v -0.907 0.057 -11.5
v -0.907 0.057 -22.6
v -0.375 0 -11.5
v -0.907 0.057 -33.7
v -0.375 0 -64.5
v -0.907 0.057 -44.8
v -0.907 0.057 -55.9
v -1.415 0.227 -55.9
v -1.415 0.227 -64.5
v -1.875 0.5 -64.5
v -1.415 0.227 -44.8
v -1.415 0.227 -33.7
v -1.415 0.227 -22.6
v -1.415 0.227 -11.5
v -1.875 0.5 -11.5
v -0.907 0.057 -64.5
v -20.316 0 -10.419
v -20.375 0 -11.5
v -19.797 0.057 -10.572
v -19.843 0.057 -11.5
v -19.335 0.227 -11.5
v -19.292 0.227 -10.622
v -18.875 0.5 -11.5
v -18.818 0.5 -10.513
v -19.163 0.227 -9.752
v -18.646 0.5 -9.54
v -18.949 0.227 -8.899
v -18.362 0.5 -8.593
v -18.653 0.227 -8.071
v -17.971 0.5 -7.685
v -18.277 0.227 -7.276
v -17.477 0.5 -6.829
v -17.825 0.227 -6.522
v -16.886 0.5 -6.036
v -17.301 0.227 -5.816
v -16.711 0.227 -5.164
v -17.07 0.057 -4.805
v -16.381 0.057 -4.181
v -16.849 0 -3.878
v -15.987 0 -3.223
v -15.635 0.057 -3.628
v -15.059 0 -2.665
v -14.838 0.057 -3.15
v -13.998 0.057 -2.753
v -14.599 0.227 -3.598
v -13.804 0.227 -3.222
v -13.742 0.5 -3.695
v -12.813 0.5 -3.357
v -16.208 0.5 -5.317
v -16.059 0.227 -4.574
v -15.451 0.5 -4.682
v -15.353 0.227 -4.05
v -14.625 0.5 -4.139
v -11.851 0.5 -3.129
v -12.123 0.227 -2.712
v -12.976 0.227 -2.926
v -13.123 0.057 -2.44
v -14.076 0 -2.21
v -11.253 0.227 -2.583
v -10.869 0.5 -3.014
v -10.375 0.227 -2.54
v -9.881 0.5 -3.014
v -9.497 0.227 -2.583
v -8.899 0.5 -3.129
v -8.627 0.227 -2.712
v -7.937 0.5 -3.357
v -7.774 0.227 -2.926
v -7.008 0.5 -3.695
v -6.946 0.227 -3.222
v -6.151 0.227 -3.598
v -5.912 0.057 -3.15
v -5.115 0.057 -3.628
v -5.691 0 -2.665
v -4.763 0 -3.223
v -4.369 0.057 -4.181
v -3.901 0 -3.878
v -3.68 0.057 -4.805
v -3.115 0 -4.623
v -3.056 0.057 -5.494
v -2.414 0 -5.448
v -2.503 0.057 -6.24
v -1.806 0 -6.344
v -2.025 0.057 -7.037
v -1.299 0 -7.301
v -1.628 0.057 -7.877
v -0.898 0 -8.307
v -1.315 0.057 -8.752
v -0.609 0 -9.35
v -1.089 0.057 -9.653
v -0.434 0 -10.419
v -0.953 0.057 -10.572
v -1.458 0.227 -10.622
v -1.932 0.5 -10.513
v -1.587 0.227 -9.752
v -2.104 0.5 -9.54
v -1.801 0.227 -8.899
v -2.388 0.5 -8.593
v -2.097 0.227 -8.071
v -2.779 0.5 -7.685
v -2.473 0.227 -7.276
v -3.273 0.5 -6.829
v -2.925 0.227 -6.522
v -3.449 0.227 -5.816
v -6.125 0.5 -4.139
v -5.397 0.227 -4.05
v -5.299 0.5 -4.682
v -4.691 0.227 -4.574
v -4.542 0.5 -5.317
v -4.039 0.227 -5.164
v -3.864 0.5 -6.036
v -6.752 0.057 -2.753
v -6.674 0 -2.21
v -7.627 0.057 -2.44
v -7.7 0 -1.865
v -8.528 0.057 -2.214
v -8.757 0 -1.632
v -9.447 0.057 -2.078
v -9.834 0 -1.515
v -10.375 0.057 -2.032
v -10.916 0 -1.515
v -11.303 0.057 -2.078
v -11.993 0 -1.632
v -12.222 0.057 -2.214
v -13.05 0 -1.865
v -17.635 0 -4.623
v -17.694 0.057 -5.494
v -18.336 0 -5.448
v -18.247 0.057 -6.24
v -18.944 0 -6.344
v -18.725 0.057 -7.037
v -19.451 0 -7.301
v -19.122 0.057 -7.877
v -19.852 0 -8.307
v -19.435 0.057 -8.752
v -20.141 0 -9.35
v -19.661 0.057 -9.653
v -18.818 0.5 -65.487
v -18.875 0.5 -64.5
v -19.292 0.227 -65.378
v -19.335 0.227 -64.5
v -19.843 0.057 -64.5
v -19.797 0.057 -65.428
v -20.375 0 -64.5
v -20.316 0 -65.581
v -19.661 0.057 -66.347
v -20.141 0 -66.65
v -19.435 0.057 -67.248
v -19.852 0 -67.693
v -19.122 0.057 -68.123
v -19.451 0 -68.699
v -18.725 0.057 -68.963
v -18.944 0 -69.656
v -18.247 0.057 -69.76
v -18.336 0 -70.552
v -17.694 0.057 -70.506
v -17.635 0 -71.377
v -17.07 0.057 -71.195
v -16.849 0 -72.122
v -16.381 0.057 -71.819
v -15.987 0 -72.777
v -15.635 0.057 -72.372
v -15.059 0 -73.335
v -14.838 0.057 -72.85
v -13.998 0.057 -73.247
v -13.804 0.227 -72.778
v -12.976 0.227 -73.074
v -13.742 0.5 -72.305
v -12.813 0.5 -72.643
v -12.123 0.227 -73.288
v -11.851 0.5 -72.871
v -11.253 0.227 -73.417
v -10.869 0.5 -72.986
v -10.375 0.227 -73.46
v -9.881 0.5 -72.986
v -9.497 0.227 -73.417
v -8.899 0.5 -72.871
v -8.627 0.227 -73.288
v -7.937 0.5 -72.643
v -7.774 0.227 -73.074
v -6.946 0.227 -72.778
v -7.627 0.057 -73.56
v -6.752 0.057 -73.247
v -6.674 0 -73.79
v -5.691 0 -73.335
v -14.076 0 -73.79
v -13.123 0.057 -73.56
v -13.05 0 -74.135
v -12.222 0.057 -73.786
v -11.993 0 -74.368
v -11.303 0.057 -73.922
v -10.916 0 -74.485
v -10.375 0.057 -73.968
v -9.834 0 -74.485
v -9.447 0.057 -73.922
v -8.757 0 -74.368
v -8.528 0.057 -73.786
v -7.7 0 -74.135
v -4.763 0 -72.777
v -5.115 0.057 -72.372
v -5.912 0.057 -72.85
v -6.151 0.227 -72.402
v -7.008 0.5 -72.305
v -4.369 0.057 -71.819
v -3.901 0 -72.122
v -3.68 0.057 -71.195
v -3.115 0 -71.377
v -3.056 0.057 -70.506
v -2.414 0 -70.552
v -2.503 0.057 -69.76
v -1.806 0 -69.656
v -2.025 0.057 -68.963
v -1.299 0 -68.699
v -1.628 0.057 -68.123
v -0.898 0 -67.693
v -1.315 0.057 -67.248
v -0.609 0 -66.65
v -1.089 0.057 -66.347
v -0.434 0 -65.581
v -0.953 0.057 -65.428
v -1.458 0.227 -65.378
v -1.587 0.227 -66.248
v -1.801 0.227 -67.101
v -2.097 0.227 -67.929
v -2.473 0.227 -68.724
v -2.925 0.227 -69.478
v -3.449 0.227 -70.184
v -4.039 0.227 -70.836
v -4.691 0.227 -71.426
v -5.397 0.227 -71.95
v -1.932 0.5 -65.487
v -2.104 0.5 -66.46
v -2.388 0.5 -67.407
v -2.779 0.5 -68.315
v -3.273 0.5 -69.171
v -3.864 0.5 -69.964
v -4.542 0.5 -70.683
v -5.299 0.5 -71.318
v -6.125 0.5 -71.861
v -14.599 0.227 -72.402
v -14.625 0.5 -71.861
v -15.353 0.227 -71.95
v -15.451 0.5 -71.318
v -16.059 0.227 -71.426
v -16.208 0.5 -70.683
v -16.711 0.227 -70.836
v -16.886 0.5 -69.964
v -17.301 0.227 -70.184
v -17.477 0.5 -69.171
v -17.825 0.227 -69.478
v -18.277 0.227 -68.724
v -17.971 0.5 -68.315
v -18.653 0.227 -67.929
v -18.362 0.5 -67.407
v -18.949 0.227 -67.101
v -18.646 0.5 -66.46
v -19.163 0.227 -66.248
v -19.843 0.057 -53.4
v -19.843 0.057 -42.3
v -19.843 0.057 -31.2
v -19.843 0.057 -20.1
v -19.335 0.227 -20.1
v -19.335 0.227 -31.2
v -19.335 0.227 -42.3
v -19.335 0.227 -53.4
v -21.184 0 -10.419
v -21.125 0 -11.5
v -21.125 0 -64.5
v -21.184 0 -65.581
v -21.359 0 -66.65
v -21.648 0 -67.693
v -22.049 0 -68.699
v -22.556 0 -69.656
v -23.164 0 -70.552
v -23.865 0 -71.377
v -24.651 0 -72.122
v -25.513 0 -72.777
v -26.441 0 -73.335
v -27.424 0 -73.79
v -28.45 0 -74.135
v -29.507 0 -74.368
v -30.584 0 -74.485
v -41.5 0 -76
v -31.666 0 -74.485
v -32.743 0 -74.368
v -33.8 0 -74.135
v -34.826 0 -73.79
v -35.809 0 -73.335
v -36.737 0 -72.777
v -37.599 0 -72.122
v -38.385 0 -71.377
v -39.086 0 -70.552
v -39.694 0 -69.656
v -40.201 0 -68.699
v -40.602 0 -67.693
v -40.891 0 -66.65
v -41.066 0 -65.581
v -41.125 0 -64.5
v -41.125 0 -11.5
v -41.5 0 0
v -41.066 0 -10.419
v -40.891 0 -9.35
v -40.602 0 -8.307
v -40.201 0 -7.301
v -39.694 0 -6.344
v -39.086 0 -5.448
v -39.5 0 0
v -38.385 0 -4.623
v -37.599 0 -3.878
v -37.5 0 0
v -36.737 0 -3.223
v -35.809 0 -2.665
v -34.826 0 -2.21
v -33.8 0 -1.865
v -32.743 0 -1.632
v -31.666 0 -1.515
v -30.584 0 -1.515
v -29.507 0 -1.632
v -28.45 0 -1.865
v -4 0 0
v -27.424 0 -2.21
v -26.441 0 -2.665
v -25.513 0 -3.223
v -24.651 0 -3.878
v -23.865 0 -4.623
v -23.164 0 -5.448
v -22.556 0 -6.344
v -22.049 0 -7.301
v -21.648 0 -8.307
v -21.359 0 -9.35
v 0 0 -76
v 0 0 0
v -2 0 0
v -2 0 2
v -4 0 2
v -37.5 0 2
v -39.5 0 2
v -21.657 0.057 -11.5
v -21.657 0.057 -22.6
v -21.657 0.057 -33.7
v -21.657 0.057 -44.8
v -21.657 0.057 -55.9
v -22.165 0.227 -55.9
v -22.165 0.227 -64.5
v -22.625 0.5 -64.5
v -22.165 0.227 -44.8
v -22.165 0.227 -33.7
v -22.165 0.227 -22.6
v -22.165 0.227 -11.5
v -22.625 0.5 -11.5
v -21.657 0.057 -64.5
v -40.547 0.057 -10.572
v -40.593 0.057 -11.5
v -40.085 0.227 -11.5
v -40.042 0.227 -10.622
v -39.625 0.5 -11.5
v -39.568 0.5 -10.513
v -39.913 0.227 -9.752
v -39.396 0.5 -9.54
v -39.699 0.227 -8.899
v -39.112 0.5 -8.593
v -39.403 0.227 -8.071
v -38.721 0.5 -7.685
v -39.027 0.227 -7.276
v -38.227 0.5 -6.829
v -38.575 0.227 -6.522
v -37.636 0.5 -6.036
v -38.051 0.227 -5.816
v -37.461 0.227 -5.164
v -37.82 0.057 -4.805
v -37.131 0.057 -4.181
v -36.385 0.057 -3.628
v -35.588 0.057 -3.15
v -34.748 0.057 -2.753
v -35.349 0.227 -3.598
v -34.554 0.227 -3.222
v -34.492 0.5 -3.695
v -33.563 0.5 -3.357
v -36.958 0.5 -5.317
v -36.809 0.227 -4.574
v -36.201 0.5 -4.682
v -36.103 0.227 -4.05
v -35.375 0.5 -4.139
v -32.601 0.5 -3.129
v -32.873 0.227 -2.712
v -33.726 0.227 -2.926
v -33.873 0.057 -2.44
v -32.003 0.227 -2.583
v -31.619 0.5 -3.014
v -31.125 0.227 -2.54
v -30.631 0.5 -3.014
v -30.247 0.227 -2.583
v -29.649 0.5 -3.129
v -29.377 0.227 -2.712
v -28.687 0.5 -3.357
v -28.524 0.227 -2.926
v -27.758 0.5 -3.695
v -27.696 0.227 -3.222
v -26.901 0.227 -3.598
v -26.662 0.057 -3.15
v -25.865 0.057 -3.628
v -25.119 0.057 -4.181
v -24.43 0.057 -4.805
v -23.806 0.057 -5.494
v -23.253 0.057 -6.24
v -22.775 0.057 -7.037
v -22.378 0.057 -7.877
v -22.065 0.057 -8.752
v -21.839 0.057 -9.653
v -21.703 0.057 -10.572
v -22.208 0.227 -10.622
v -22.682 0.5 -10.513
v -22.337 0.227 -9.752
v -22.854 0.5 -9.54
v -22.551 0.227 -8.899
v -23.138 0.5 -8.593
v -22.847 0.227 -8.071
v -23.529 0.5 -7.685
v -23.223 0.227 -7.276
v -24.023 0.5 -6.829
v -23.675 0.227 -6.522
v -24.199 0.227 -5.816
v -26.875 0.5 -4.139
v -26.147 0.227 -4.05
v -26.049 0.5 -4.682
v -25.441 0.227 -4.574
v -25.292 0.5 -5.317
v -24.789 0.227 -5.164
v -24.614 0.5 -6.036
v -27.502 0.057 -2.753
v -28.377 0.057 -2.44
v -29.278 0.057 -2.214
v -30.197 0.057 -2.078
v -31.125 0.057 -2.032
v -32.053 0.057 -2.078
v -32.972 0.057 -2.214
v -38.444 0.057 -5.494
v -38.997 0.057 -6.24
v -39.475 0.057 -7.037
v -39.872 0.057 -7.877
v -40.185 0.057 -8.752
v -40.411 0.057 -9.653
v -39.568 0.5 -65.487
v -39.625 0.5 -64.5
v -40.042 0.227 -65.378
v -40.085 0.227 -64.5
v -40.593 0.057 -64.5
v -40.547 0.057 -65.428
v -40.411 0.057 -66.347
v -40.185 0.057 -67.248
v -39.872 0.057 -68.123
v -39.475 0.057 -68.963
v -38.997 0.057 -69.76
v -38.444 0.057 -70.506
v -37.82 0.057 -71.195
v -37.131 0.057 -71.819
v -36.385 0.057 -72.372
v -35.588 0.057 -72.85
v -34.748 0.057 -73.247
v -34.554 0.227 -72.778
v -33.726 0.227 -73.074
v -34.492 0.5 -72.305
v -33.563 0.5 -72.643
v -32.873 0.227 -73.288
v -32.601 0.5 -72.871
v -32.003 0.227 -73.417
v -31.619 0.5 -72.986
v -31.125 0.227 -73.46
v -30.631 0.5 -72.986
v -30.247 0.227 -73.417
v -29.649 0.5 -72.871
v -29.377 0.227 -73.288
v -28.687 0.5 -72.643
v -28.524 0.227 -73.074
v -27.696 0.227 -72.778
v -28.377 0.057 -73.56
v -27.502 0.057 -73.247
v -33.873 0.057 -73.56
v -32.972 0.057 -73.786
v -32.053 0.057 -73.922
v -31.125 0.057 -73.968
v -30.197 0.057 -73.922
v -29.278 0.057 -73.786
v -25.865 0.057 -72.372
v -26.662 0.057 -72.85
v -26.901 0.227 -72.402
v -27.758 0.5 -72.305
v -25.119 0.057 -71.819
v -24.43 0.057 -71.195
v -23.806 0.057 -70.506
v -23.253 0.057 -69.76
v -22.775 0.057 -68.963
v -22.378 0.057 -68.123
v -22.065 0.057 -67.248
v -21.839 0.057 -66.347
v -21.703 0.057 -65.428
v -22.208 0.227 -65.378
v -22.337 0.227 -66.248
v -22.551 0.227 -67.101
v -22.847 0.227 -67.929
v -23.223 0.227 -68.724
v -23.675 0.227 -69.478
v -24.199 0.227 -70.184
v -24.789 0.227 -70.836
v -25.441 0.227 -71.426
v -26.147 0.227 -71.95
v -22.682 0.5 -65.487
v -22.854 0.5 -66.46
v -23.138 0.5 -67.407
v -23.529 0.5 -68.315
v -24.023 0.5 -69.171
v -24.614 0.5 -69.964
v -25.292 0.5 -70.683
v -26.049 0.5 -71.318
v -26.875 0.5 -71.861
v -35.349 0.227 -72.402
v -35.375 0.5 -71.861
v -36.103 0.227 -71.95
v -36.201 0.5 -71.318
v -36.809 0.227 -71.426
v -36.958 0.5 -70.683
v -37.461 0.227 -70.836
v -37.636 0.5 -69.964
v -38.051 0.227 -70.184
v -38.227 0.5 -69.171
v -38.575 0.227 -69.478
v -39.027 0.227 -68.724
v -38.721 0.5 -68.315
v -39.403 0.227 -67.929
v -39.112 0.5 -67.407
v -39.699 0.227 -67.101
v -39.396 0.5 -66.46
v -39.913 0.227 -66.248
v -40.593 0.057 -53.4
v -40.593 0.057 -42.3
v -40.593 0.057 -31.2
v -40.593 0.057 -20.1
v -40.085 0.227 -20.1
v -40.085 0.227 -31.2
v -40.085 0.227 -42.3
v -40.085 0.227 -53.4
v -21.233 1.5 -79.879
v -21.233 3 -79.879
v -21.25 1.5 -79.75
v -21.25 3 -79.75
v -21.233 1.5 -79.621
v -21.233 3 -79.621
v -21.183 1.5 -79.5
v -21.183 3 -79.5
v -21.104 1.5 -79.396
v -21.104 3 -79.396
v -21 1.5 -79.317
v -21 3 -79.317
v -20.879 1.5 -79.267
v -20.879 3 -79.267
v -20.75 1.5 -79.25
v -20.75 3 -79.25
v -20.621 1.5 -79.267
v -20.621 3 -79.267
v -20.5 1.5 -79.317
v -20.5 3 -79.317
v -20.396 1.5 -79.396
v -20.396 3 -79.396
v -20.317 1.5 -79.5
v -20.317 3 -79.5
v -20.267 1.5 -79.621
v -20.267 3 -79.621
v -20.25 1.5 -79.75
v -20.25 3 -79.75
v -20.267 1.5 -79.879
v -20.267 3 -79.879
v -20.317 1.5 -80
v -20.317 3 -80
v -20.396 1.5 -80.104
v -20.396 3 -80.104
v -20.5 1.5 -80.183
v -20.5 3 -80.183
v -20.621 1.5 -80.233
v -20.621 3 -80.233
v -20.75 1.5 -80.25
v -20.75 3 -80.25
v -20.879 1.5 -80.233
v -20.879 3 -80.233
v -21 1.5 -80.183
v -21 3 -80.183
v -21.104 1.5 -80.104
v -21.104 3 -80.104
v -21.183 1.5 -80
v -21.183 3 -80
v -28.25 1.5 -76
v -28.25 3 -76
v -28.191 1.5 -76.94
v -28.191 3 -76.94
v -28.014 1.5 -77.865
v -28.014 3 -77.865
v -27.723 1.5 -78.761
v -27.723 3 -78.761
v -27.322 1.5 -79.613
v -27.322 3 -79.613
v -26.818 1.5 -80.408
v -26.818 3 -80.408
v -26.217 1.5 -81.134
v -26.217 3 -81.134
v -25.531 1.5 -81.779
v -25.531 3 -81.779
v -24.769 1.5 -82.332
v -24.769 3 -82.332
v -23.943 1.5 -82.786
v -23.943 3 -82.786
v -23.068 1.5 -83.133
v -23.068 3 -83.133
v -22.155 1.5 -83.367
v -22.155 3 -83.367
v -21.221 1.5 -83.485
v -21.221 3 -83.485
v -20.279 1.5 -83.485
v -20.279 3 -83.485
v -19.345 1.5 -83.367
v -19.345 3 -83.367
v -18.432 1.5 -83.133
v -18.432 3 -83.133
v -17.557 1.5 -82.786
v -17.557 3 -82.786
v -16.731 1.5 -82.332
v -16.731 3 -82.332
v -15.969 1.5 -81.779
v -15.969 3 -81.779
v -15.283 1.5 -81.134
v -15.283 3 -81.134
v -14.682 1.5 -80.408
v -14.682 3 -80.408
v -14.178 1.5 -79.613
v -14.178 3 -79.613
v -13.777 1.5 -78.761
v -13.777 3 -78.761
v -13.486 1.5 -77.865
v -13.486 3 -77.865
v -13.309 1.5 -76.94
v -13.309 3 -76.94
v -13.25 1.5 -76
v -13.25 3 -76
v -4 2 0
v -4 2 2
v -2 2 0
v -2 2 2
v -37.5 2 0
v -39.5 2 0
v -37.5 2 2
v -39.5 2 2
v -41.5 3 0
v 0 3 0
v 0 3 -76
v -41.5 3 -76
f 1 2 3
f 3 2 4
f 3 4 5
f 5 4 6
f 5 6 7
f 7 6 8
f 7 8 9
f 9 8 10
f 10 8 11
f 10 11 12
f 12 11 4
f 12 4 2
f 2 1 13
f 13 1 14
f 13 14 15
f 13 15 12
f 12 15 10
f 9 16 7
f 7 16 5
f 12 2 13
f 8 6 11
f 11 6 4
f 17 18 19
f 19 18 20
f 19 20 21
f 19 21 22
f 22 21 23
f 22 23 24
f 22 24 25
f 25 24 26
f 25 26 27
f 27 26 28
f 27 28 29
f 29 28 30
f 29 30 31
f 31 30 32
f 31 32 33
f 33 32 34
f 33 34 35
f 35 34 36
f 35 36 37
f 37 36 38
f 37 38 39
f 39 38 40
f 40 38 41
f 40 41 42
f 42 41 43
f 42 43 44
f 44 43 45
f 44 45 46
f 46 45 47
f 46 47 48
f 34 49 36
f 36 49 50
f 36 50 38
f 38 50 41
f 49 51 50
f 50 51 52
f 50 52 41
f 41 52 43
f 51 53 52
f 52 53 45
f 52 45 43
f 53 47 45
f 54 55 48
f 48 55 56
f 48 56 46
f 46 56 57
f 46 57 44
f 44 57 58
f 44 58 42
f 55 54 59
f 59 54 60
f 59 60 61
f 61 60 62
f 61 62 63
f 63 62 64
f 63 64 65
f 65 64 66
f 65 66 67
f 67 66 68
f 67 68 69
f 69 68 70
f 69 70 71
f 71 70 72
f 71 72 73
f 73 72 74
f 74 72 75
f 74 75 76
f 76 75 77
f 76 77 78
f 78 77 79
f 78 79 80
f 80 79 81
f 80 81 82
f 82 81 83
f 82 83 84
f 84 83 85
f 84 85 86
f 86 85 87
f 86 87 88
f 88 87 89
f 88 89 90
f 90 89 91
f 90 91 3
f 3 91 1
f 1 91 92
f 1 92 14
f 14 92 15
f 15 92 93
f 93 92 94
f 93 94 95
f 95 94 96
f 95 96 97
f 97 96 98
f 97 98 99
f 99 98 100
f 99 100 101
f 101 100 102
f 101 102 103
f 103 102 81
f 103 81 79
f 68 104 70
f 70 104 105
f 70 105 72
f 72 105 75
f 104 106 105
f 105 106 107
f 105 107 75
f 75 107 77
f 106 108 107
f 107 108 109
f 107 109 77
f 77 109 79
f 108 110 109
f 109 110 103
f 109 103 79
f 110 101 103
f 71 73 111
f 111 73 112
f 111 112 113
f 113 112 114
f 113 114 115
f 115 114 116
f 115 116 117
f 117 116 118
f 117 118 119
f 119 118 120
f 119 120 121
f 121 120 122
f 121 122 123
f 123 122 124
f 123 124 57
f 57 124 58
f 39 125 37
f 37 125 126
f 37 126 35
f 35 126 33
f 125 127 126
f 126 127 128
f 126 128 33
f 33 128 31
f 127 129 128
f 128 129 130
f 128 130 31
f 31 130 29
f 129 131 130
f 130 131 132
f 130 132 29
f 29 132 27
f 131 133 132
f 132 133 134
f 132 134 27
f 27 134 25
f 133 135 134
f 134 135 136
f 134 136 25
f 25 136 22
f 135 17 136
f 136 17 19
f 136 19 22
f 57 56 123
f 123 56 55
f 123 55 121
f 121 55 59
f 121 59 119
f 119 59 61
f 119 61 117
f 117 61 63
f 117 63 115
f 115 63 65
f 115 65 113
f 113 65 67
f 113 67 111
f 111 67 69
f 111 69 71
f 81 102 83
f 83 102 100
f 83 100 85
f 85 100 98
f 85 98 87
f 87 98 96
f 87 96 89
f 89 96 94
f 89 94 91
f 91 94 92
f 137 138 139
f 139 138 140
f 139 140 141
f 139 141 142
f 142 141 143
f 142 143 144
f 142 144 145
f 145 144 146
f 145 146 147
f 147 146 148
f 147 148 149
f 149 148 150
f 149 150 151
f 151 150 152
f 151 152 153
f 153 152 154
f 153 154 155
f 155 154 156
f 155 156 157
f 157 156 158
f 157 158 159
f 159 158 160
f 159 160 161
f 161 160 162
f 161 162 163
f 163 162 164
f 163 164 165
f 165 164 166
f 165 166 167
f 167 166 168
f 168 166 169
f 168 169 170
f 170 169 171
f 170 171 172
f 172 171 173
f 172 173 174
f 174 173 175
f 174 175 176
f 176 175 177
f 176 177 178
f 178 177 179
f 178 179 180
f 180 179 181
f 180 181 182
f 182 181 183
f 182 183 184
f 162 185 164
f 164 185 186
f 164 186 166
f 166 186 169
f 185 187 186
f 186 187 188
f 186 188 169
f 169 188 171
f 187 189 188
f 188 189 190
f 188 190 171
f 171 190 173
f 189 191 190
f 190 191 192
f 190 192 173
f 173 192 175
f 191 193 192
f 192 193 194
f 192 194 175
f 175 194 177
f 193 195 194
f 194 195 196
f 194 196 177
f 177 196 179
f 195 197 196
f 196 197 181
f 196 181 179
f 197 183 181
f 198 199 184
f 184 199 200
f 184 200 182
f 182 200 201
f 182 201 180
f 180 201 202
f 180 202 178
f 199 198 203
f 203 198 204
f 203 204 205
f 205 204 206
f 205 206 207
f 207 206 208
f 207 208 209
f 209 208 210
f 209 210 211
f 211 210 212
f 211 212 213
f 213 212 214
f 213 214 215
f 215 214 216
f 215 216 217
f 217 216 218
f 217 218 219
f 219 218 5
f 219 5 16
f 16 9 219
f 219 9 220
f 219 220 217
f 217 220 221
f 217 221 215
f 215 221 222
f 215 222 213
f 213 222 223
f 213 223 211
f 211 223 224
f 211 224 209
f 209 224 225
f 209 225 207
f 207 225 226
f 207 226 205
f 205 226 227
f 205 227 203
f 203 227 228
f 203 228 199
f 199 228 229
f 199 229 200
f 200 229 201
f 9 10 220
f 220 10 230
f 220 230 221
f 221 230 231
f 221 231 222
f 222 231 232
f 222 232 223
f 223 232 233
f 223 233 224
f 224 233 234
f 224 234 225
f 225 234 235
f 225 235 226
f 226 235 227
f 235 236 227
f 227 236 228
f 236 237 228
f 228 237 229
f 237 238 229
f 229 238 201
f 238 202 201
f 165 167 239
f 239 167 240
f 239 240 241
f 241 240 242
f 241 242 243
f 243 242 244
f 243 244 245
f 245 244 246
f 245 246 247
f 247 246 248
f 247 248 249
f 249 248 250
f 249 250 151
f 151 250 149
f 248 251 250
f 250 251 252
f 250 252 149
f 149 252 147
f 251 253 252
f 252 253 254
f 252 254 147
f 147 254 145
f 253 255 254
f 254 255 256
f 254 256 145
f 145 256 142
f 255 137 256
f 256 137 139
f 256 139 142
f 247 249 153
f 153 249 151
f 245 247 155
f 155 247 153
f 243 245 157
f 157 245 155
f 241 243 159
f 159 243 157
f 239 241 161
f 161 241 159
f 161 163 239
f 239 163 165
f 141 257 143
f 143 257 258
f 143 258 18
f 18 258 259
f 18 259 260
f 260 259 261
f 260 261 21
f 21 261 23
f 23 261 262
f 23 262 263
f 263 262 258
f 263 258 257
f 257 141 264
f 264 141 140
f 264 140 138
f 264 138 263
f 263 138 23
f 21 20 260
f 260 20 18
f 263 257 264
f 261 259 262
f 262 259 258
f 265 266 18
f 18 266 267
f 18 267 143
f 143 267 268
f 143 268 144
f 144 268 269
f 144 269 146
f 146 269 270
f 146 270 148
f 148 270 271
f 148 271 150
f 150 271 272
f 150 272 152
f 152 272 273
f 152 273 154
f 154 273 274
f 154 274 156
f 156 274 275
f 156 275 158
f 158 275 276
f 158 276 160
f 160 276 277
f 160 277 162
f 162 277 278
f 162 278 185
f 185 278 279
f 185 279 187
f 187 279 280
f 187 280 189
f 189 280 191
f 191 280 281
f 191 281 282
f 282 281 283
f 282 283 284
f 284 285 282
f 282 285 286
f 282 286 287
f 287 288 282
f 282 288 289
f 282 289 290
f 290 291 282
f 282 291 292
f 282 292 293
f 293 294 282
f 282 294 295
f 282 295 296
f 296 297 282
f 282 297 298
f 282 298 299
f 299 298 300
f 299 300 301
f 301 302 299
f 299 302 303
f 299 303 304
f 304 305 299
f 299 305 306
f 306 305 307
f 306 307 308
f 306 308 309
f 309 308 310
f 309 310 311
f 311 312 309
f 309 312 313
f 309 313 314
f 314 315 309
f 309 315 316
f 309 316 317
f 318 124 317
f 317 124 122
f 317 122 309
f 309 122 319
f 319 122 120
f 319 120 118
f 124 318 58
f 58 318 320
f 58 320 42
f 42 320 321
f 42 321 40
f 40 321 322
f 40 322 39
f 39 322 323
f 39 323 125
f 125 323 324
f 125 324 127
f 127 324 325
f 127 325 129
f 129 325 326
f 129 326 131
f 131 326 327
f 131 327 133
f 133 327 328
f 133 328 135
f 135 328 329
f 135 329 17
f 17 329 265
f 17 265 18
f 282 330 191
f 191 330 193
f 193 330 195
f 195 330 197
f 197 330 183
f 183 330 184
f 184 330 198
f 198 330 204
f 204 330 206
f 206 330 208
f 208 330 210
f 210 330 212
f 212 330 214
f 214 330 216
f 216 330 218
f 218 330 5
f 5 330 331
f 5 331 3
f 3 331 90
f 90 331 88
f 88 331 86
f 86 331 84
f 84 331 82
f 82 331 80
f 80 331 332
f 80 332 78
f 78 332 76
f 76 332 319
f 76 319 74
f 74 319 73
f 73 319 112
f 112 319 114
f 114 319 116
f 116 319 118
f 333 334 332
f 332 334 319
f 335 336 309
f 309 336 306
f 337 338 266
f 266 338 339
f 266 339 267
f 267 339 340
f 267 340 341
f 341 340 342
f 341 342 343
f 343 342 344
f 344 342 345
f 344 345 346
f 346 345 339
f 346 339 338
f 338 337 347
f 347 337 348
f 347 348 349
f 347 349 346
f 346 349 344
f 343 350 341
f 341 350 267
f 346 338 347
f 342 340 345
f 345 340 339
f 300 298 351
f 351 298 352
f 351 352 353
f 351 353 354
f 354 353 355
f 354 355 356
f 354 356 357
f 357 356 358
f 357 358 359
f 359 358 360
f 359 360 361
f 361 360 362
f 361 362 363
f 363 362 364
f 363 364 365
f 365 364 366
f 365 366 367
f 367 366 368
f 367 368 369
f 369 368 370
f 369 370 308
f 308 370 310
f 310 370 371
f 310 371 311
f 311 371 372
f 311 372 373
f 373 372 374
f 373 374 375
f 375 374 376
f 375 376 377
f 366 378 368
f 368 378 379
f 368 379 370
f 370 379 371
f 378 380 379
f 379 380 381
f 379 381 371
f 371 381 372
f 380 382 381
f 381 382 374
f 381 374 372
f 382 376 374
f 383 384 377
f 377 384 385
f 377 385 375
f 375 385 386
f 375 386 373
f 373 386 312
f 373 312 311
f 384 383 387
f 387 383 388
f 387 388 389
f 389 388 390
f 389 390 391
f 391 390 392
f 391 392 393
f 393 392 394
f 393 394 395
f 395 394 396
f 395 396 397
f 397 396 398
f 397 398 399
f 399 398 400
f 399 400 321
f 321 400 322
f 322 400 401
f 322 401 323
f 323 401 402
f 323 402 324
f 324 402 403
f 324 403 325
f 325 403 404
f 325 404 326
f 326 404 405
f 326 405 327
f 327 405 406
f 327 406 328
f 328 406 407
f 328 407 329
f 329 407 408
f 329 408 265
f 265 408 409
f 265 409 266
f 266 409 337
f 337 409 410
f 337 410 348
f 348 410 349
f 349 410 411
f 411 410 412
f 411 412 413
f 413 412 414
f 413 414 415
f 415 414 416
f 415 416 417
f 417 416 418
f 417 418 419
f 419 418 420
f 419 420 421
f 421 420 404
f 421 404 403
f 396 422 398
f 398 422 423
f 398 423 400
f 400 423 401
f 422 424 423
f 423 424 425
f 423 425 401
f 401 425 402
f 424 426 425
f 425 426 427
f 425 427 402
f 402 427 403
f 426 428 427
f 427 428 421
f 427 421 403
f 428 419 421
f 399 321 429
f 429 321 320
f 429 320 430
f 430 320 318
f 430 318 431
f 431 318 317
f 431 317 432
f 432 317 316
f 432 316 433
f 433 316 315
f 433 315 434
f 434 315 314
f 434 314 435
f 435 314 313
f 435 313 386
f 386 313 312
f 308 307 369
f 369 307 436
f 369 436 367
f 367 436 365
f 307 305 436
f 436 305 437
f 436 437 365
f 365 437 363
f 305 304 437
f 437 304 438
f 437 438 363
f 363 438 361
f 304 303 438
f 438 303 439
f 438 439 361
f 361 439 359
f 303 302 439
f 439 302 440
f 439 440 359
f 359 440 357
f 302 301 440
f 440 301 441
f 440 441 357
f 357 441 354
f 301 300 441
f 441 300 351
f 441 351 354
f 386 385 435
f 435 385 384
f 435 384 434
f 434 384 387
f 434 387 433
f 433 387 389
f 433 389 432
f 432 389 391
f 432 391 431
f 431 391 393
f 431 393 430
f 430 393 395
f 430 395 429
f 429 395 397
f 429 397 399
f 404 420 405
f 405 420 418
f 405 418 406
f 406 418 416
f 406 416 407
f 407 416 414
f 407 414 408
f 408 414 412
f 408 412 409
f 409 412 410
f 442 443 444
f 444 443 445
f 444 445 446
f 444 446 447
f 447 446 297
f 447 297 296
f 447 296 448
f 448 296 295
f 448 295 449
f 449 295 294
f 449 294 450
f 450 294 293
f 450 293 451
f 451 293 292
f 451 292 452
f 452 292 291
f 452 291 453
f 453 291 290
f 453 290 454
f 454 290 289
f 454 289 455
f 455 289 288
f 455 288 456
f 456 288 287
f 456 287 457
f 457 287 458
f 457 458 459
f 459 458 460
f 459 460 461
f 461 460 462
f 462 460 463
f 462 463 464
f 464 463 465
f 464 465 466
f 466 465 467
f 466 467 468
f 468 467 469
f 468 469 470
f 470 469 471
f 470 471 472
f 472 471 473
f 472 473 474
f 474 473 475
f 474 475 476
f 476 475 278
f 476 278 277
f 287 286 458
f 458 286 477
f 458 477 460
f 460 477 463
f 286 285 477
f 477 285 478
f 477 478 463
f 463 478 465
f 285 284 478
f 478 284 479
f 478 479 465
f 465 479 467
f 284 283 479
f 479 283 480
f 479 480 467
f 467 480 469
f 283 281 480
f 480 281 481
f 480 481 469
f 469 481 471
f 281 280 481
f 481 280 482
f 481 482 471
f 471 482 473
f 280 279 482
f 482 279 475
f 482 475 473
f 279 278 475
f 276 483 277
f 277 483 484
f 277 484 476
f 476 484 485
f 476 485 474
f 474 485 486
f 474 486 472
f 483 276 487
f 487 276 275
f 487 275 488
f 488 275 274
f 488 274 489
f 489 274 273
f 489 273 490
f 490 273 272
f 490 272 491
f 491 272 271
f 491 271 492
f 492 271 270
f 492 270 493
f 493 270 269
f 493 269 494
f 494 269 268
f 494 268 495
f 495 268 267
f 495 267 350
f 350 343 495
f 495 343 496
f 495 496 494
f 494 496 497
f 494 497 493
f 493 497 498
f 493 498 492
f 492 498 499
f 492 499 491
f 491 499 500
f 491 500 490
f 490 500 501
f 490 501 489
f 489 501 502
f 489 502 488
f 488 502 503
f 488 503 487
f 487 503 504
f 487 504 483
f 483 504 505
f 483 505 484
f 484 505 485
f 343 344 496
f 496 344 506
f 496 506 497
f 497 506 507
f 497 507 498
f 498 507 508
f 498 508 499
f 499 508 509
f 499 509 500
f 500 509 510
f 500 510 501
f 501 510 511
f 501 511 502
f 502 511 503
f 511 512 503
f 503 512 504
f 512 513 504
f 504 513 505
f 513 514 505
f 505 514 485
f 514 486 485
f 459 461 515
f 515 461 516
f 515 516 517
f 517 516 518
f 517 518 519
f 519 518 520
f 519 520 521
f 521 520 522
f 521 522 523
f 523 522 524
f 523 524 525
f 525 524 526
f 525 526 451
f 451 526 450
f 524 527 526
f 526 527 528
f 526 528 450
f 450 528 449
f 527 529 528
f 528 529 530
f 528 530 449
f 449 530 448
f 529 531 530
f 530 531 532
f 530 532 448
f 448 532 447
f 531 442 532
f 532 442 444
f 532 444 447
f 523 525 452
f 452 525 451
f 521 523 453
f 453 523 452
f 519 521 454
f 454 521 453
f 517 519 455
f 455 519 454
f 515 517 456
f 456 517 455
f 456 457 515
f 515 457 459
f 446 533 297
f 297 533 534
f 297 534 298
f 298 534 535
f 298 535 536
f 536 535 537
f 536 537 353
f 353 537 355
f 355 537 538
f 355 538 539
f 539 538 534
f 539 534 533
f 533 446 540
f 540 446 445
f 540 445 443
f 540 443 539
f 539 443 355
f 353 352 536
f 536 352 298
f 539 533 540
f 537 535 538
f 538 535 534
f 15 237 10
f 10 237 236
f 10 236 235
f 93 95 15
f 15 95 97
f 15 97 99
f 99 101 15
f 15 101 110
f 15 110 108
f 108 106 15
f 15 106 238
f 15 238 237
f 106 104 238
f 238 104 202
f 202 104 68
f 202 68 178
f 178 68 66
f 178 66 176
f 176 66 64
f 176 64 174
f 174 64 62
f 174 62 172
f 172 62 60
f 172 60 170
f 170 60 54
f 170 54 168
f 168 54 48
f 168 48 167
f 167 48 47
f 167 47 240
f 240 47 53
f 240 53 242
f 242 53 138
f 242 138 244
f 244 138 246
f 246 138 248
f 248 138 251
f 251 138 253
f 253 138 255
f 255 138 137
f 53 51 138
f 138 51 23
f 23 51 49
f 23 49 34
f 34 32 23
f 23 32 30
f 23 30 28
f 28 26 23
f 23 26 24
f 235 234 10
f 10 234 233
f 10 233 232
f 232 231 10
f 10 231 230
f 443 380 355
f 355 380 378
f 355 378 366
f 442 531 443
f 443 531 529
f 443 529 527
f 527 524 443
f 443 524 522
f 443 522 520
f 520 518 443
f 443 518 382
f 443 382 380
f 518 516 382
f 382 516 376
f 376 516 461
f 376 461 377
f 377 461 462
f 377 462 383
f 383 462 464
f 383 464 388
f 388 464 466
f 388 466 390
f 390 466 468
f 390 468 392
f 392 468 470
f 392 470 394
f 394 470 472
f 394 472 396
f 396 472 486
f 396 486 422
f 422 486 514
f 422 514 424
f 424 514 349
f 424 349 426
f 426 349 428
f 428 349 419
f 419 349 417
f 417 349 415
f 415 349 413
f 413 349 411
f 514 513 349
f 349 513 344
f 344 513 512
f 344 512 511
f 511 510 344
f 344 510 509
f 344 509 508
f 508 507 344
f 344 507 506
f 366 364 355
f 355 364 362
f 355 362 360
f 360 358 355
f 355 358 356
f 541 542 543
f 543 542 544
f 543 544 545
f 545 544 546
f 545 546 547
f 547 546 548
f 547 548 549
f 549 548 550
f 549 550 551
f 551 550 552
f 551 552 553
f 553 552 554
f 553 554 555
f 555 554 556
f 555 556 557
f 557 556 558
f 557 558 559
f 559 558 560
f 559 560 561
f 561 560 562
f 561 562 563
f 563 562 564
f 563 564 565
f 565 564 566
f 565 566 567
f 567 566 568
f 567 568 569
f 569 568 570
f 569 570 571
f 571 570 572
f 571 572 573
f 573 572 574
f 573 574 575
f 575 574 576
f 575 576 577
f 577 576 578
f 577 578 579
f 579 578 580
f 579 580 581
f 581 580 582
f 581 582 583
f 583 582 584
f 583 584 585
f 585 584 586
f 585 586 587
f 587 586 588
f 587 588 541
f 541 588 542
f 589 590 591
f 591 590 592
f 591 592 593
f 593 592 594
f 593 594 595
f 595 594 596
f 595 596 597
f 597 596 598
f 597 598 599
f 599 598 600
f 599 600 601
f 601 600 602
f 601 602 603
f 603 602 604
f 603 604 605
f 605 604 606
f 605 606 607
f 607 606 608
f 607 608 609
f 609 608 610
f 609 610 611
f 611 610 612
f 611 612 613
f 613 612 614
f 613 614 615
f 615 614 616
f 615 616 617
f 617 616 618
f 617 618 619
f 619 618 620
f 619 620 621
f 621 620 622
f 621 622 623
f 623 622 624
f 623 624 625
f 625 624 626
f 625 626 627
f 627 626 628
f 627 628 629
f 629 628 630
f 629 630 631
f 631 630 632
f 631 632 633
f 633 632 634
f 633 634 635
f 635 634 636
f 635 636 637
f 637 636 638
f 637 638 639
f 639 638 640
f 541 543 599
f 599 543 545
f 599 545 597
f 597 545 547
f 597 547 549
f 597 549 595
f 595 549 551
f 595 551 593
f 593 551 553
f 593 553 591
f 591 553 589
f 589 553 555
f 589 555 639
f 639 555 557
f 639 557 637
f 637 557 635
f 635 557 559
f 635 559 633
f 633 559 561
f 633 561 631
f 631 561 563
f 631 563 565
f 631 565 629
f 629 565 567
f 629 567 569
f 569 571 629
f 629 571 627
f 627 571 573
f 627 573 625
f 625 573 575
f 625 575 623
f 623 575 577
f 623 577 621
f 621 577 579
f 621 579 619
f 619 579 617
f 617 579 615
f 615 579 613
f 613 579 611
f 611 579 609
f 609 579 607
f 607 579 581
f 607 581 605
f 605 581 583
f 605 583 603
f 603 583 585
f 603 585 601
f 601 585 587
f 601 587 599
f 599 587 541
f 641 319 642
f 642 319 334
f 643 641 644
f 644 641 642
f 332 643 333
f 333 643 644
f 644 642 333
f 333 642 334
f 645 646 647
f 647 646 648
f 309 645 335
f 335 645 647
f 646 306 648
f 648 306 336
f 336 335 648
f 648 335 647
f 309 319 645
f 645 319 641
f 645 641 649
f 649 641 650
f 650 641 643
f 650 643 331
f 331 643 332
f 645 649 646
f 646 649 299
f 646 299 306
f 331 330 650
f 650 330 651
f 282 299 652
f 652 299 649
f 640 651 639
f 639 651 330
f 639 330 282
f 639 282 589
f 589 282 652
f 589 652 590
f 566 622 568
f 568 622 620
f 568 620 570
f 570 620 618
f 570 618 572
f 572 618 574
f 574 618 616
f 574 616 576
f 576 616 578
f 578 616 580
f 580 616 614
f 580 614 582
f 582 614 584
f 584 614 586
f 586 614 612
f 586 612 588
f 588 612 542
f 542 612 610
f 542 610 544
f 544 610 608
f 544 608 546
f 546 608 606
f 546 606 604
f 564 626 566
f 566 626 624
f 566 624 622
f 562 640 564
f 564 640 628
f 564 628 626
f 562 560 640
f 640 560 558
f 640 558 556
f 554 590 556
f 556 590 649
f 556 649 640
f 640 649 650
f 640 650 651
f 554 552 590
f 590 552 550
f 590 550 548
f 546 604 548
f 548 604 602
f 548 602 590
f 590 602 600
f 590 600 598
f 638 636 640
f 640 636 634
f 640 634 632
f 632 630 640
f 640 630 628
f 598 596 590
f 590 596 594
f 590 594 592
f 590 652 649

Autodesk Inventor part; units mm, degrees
ref_plane "YZ Plane" through (0, 0, 0) normal (1, 0, 0) x (0, 1, 0)
ref_plane "XZ Plane" through (0, 0, 0) normal (0, 1, 0) x (-1, 0, 0)
ref_plane "XY Plane" through (0, 0, 0) normal (0, 0, 1) x (1, 0, 0)
sketch "Sketch1" plane through (0, 0, 0) normal (0, 1, 0) x (-1, 0, 0)
  line L0 (0, 0) -> (41.5, 0)
  line L1 (41.5, 0) -> (41.5, -76)
  line L2 (41.5, -76) -> (0, -76)
  line L3 (0, -76) -> (0, 0)
  dimension "d0" = 41.5
  dimension "d1" = 76
extrude "Extrusion1" add sketch "Sketch1" along normal blind 3
sketch "Sketch2" plane through (-41.5, 0, 0) normal (0, 0, 1) x (1, 0, 0)
  line L0 (41.5, 0) -> (0, 0) construction
  line L1 (0, 0) -> (2, 0) construction
  line L2 (41.5, 0) -> (41.5, 3) construction
  line L3 (41.5, 0) -> (39.5, 0) construction
  line L4 (2, 0) -> (4, 0)
  line L5 (4, 0) -> (4, 2)
  line L6 (4, 2) -> (2, 2)
  line L7 (2, 2) -> (2, 0)
  line L8 (39.5, 0) -> (37.5, 0)
  line L9 (37.5, 0) -> (37.5, 2)
  line L10 (37.5, 2) -> (39.5, 2)
  line L11 (39.5, 2) -> (39.5, 0)
  dimension "d4" = 2
  dimension "d5" = 2
  dimension "d6" = 2
  dimension "d7" = 2
  dimension "d8" = 2
  dimension "d9" = 2
extrude "Extrusion2" add sketch "Sketch2" along normal blind 2
sketch "Sketch3" plane through (0, 3, 0) normal (0, 1, 0) x (1, 0, 0)
  line L0 (0, 76) -> (-41.5, 76) projected
  circle A0 centre (-20.75, 76) radius 7.5
  point P0 (0, 0)
  point P1 (-28.25, 76)
  point P2 (-13.25, 76)
  dimension "d12" = 15
extrude "Extrusion3" add sketch "Sketch3" against normal blind 1.5 contours L0 A0 picked at (-18.3226, 76.5983)
sketch "Sketch4" plane through (0, 3, 0) normal (0, 1, 0) x (1, 0, 0)
  line L0 (-28.25, 76) -> (-13.25, 76) construction
  line L1 (-20.75, 76) -> (-20.75, 79.75) construction
  point P0 (0, 0)
  dimension "d15" = 3.75
hole "Hole1" at (-20.75, 3, -79.75) direction (0, -1, 0) diameter 1 depth 2 tip angle 118
sketch "Sketch5" plane through (0, 0, 0) normal (0, -1, 0) x (1, 0, 0)
  line L0 (-28.25, -76) -> (-13.25, -76) construction
  line L1 (-20.75, -76) -> (-20.75, 0) construction
  line L2 (-41.5, 0) -> (0, 0) construction
  line L3 (-41.5, -76) -> (-41.5, 0) construction
  line L4 (-41.5, -76) -> (-20.75, 0) construction
  line L5 (-41.5, 0) -> (-20.75, -76) construction
  line L6 (-28.25, -76) -> (-41.5, -76) construction
  line L7 (-31.125, -76) -> (-31.125, -73) construction
  line L8 (-31.125, 0) -> (-31.125, -3) construction
  line L9 (-31.125, -73) -> (-31.125, -3) construction
  line L10 (-22.625, -64.5) -> (-22.625, -11.5)
  line L11 (-39.625, -11.5) -> (-39.625, -64.5)
  arc A0 (-39.625, -64.5) -> (-22.625, -64.5) centre (-31.125, -64.5) ccw
  arc A1 (-22.625, -11.5) -> (-39.625, -11.5) centre (-31.125, -11.5) ccw
  line L12 (-18.875, -64.5) -> (-18.875, -11.5)
  line L13 (-1.875, -11.5) -> (-1.875, -64.5)
  arc A2 (-18.875, -64.5) -> (-1.875, -64.5) centre (-10.375, -64.5) ccw
  arc A3 (-1.875, -11.5) -> (-18.875, -11.5) centre (-10.375, -11.5) ccw
  point P0 (-31.125, -38)
  dimension "d23" = 3
  dimension "d24" = 3
  dimension "d25" = 17
extrude "Extrusion4" cut sketch "Sketch5" against normal blind 0.5
fillet "Fillet1" radius 2.5 8 edges at (-31.125, 0, -73) (-39.625, 0, -38) (-31.125, 0, -3) (-22.625, 0, -38) (-10.375, 0, -3) (-1.875, 0, -38) (-10.375, 0, -73) (-18.875, 0, -38)
properties part number "tapa pila"
